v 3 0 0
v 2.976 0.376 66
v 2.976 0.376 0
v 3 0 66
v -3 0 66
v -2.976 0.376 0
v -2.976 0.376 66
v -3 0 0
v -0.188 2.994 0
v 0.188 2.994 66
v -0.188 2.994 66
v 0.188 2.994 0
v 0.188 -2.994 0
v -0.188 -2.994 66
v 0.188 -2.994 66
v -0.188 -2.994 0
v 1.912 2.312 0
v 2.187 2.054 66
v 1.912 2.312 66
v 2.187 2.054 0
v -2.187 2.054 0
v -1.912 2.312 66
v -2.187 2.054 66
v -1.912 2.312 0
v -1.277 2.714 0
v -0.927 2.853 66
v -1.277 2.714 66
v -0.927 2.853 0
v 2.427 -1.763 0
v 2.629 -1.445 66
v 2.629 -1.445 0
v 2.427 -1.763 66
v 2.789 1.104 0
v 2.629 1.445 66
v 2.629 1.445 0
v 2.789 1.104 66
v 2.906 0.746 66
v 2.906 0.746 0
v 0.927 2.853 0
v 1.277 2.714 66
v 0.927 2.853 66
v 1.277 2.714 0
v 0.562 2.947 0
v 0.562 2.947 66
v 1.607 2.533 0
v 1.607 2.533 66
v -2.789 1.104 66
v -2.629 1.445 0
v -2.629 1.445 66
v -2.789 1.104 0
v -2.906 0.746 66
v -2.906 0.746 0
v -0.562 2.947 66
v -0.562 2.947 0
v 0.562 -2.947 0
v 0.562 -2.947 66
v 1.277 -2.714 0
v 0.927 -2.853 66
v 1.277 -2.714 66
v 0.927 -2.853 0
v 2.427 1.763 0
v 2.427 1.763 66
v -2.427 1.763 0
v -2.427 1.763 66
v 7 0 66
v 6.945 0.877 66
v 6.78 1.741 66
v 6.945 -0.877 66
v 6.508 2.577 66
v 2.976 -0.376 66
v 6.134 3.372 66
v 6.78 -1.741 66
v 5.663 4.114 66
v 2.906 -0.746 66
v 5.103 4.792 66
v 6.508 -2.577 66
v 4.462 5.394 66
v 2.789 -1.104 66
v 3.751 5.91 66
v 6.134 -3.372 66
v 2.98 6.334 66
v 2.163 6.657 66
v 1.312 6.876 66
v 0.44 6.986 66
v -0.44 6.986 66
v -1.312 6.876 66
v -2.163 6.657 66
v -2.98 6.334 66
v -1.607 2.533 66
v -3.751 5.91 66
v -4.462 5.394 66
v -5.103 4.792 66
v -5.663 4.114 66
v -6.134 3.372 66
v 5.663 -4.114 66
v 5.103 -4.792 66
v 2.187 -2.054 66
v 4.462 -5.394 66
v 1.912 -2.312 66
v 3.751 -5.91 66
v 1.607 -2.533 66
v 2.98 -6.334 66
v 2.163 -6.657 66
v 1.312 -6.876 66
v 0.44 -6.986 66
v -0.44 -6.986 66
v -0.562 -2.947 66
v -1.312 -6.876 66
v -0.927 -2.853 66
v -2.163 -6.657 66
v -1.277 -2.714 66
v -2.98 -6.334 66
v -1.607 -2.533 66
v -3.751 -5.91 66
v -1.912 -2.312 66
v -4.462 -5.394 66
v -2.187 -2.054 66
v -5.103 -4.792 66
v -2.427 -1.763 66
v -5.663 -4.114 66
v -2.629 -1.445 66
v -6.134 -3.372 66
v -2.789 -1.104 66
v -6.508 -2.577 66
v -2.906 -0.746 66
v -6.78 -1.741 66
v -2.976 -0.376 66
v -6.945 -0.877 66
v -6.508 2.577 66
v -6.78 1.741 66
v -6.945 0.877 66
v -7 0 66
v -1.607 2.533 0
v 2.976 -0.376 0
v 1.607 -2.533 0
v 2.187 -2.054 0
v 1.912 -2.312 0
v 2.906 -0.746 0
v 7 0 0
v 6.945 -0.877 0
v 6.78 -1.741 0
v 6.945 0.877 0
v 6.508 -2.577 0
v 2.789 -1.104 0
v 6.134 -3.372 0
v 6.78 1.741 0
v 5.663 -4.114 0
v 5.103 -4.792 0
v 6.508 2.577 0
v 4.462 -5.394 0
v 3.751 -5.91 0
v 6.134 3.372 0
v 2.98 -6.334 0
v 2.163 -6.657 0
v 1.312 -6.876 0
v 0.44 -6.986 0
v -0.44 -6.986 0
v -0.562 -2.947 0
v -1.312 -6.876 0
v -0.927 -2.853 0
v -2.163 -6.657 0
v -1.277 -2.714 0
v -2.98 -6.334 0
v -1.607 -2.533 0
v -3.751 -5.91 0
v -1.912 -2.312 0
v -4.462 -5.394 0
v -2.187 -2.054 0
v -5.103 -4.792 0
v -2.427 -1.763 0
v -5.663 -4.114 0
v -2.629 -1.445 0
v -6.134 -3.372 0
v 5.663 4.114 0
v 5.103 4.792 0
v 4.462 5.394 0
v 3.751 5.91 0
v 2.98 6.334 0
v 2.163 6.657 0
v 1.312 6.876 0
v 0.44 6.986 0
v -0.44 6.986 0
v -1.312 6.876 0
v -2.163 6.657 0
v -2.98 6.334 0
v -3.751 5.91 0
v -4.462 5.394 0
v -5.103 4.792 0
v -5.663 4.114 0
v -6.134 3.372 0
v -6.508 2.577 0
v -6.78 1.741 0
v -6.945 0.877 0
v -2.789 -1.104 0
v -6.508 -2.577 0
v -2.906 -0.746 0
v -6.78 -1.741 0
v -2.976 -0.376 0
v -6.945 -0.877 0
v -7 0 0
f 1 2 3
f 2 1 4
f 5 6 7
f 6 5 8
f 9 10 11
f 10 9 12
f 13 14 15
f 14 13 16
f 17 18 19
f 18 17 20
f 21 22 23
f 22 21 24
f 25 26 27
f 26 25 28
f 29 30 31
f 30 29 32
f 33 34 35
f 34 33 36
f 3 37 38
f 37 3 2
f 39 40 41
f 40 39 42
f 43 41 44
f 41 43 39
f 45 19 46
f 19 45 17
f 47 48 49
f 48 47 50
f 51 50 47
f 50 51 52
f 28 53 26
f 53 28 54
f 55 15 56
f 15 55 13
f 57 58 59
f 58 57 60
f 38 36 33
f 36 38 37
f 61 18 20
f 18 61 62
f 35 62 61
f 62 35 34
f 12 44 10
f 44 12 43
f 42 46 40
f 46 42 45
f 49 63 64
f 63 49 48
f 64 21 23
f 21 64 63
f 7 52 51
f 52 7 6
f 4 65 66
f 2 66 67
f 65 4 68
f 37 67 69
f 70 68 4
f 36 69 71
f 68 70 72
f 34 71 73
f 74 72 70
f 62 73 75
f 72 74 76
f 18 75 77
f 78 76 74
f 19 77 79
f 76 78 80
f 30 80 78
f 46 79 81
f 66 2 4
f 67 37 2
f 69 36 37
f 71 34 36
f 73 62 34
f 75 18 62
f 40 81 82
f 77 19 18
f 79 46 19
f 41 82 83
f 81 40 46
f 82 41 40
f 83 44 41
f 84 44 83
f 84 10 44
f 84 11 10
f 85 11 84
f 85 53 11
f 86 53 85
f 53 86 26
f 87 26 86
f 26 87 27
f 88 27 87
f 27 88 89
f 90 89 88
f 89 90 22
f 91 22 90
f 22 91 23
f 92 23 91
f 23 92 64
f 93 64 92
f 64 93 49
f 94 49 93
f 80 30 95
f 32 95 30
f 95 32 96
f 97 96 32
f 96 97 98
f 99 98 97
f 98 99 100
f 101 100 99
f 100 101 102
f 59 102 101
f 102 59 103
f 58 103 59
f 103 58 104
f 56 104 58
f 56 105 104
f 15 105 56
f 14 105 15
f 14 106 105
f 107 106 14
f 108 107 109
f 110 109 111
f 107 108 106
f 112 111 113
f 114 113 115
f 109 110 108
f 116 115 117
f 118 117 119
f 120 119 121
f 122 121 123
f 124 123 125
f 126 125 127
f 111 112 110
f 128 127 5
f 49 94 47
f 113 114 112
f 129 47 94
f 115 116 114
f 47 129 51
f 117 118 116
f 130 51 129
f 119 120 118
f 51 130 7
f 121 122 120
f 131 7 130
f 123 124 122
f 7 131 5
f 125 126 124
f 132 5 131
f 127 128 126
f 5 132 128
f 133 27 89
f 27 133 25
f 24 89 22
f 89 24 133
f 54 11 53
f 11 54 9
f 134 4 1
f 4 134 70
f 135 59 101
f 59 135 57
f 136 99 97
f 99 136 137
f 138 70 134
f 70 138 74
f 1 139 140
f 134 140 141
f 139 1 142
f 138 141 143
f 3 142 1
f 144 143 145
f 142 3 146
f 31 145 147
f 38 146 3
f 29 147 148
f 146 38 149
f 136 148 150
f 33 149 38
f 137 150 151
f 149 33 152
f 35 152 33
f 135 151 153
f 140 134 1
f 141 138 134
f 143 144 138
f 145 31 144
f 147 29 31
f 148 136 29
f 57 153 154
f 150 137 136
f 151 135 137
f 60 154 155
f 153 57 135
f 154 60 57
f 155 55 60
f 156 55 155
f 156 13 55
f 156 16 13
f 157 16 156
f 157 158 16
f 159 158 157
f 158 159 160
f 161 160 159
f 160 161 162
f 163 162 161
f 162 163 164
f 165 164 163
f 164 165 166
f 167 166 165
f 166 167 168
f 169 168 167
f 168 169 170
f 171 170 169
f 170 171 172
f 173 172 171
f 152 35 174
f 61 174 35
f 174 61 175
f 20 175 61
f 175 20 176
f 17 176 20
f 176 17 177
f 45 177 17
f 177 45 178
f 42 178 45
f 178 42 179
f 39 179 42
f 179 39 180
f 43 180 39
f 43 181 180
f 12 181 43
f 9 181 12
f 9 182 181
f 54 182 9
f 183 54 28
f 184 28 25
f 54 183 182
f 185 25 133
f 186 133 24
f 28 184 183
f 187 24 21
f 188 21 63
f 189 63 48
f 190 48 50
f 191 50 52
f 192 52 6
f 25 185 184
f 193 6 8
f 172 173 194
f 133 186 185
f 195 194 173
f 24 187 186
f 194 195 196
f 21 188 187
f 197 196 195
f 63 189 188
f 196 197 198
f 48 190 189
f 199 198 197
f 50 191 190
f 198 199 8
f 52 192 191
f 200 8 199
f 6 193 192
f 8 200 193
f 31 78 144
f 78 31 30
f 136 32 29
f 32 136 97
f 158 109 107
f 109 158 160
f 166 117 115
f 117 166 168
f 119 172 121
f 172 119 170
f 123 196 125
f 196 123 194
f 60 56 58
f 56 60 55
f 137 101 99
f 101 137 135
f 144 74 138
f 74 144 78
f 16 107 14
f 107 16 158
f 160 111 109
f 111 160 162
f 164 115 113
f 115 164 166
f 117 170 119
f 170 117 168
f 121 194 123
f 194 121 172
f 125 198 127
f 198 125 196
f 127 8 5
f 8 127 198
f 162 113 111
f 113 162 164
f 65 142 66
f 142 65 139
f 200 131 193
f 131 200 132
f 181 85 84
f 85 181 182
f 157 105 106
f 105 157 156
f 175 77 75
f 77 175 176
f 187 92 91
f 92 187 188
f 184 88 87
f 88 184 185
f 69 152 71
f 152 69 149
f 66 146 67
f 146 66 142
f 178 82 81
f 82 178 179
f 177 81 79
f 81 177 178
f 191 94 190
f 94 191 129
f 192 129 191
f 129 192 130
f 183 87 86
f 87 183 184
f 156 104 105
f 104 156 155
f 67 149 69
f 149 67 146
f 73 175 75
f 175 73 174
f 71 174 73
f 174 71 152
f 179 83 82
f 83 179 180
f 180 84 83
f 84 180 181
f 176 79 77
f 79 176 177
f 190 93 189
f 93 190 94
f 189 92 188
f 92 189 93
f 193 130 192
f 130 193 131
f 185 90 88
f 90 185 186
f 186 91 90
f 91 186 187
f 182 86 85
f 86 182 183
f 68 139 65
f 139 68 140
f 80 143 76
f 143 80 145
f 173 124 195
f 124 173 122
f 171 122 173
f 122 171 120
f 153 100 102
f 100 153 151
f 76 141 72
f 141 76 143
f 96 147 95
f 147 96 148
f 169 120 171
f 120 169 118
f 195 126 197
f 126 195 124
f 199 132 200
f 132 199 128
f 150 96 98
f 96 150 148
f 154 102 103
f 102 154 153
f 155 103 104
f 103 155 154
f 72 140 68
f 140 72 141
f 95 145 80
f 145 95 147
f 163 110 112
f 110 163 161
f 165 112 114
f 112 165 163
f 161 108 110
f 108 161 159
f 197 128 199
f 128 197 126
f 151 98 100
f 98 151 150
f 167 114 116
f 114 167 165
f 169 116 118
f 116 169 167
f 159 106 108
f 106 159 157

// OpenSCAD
$fn = 50;


difference() {
	union() {
		cylinder(h = 66, r = 7.0000000000);
	}
	union() {
		translate(v = [0, 0, -100]) {
			cylinder(h = 200, r = 3.0000000000);
		}
	}
}
